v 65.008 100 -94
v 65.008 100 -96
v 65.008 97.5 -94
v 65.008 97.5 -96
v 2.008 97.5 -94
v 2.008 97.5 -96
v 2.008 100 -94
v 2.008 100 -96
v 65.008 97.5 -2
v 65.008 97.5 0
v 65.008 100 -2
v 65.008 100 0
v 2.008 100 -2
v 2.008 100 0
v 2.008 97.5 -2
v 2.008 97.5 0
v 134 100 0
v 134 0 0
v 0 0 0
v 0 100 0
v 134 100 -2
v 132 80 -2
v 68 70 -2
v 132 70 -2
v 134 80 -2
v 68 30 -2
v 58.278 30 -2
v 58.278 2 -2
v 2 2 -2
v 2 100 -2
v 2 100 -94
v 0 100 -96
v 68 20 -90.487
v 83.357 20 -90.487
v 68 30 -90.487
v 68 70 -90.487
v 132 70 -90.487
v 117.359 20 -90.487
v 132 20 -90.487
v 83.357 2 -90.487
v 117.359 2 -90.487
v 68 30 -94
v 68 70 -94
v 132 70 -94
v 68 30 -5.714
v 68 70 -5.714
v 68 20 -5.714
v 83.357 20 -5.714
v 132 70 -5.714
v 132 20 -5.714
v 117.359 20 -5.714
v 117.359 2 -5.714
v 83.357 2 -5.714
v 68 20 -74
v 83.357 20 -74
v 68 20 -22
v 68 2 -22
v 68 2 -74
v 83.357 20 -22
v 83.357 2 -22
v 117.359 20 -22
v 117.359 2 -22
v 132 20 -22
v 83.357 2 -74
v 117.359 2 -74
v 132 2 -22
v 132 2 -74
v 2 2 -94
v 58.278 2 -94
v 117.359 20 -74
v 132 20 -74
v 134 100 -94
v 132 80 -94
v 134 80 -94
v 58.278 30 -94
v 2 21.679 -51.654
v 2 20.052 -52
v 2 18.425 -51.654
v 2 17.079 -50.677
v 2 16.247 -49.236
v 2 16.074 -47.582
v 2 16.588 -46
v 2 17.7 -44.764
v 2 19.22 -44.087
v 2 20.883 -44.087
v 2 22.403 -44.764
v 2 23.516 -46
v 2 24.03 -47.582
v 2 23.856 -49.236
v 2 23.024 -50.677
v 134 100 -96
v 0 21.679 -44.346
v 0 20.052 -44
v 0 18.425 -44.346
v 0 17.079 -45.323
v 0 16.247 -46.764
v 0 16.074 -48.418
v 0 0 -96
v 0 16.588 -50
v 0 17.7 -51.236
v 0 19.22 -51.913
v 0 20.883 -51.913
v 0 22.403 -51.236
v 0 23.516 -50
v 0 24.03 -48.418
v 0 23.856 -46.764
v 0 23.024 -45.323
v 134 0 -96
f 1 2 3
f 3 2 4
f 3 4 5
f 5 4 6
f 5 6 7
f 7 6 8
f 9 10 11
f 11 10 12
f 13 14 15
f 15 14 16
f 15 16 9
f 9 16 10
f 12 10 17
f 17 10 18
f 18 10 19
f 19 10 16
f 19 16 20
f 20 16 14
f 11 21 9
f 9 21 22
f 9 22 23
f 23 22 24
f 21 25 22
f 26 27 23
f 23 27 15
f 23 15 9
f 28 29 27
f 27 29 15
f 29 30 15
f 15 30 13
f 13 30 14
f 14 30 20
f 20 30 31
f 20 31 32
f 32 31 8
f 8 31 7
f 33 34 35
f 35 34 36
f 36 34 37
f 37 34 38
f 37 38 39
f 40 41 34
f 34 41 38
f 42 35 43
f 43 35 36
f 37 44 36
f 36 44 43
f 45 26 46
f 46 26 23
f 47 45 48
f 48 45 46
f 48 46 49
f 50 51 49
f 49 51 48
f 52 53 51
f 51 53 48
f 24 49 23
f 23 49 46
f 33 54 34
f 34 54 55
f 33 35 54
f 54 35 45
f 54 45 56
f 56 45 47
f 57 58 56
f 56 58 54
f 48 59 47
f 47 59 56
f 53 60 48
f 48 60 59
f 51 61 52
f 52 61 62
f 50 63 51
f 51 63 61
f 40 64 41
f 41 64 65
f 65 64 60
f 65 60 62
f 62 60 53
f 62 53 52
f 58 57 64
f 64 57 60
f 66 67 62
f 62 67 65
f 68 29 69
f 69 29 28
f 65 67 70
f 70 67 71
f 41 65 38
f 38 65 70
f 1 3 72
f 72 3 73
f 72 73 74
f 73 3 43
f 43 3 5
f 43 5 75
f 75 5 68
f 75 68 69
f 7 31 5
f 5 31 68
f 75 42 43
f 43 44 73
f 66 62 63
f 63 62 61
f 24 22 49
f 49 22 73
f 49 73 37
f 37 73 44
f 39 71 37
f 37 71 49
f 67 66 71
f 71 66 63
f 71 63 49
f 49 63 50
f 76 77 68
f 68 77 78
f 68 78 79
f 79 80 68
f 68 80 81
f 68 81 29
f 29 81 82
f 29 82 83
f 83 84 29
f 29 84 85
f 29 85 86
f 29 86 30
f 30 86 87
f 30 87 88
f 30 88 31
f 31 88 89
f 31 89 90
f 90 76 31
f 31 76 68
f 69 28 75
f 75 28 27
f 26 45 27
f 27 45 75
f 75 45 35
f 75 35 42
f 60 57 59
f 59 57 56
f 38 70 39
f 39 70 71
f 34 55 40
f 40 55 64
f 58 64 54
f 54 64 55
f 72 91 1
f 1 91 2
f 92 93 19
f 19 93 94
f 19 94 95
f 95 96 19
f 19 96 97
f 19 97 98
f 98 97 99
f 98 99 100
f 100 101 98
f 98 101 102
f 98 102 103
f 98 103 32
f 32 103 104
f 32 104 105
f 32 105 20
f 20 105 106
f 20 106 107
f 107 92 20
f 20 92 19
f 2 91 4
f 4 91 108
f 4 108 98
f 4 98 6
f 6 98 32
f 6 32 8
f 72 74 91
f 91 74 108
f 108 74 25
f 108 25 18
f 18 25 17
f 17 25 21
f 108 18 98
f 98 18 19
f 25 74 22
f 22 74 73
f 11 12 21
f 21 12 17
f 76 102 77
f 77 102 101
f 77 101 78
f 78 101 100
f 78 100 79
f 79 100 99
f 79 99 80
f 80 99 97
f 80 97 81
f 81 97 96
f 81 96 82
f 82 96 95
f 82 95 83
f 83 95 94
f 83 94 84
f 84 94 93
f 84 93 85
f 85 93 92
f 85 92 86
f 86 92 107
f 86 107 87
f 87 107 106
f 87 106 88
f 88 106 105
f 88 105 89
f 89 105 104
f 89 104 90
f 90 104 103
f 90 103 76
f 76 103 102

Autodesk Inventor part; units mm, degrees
ref_plane "YZ Plane" through (0, 0, 0) normal (1, 0, 0) x (0, 1, 0)
ref_plane "XZ Plane" through (0, 0, 0) normal (0, 1, 0) x (-1, 0, 0)
ref_plane "XY Plane" through (0, 0, 0) normal (0, 0, 1) x (1, 0, 0)
sketch "Sketch1" plane through (0, 0, 0) normal (0, 1, 0) x (-1, 0, 0)
  line L0 (0, 0) -> (-134, 0)
  line L1 (-134, 0) -> (-134, -96)
  line L2 (-134, -96) -> (0, -96)
  line L3 (0, -96) -> (0, 0)
  line L4 (0, 0) -> (-2, 0)
  line L5 (-2, 0) -> (-2, -2)
  line L6 (-2, -2) -> (0, -2)
  line L7 (0, -2) -> (0, 0)
  line L8 (-134, -96) -> (-132, -96)
  line L9 (-132, -96) -> (-132, -94)
  line L10 (-132, -94) -> (-134, -94)
  line L11 (-134, -94) -> (-134, -96)
  line L12 (-2, -2) -> (-132, -2)
  line L13 (-132, -2) -> (-132, -94)
  line L14 (-132, -94) -> (-2, -94)
  line L15 (-2, -94) -> (-2, -2)
  line L16 (-132, -94) -> (-68, -94)
  line L17 (-68, -94) -> (-68, -74)
  line L18 (-68, -74) -> (-132, -74)
  line L19 (-132, -74) -> (-132, -94)
  line L20 (-132, -2) -> (-68, -2)
  line L21 (-68, -2) -> (-68, -22)
  line L22 (-68, -22) -> (-132, -22)
  line L23 (-132, -22) -> (-132, -2)
  line L24 (-132, -74) -> (-71.6783, -74)
  line L25 (-71.6783, -22) -> (-132, -22)
  line L26 (-71.6783, -74) -> (-71.6783, -22)
  line L27 (-71.6783, -88.5049) -> (-132, -88.5049)
  line L28 (-132, -88.5049) -> (-132, -7.5049)
  line L29 (-132, -7.5049) -> (-71.6783, -7.5049)
  line L30 (-71.6783, -7.5049) -> (-71.6783, -88.5049)
  line L31 (-68, -94) -> (-58.2781, -94)
  line L32 (-58.2781, -94) -> (-58.2781, -2)
  line L33 (-58.2781, -2) -> (-68, -2)
  line L34 (-68, -2) -> (-68, -94)
  line L35 (-2, -94) -> (-58.2781, -94)
  line L36 (-58.2781, -94) -> (-58.2781, -2)
  line L37 (-58.2781, -2) -> (-2, -2)
  line L38 (-2, -2) -> (-2, -94)
  line L39 (-68, -74) -> (-83.3567, -74)
  line L40 (-83.3567, -74) -> (-83.3567, -94)
  line L41 (-83.3567, -94) -> (-68, -94)
  line L42 (-68, -94) -> (-68, -74)
  line L43 (-132, -74) -> (-117.3588, -74)
  line L44 (-117.3588, -74) -> (-117.3588, -94)
  line L45 (-117.3588, -94) -> (-132, -94)
  line L46 (-132, -94) -> (-132, -74)
  line L47 (-68, -22) -> (-83.3567, -22)
  line L48 (-83.3567, -22) -> (-83.3567, -2)
  line L49 (-83.3567, -2) -> (-68, -2)
  line L50 (-68, -2) -> (-68, -22)
  line L51 (-117.3588, -22) -> (-132, -22)
  line L52 (-132, -22) -> (-132, -2)
  line L53 (-132, -2) -> (-117.3588, -2)
  line L54 (-117.3588, -2) -> (-117.3588, -22)
  line L55 (-68, -5.7143) -> (-132, -5.7143)
  line L56 (-132, -5.7143) -> (-132, -2)
  line L57 (-132, -2) -> (-68, -2)
  line L58 (-68, -2) -> (-68, -5.7143)
  line L59 (-68, -94) -> (-132, -94)
  line L60 (-132, -94) -> (-132, -90.4872)
  line L61 (-132, -90.4872) -> (-68, -90.4872)
  line L62 (-68, -90.4872) -> (-68, -94)
  line L63 (-132, -92.2436) -> (-29, -92.2436)
  line L64 (-29, -92.2436) -> (-29, -2.2436)
  line L65 (-29, -2.2436) -> (-132, -2.2436)
  line L66 (-132, -2.2436) -> (-132, -92.2436)
  point P0 (-83.3567, -2)
  point P1 (-83.3567, -7.5049)
  point P2 (-117.3588, -7.5049)
  point P3 (-132, -7.5049)
  point P4 (-132, -88.5049)
  point P5 (-117.3588, -88.5049)
  point P6 (-83.3567, -88.5049)
  dimension "d0" = 134
  dimension "d1" = 96
  dimension "d2" = 2
  dimension "d3" = 2
  dimension "d4" = 2
  dimension "d5" = 2
  dimension "d6" = 64
  dimension "d7" = 64
  dimension "d9" = 20
  dimension "d10" = 20
  dimension "d11" = 81
  dimension "d22" = 5.5049
  dimension "d23" = 90
  dimension "d24" = 103
extrude "Extrusion1" add sketch "Sketch1" along normal blind 100 contours L3 L6 L5 L0 | L5 L12 L13 L10 L1 L0 | L3 L2 L9 L14 L15 L6 | L10 L9 L2 L1
extrude "Extrusion2" add sketch "Sketch1" along normal blind 20 contours L13 L63 L44 L14 | L21 L65 L48 L12 | L13 L61 L44 L63 | L21 L55 L48 L65 | L14 L40 L63 L17 | L13 L27 L44 L61 | L54 L65 L13 L12 | L21 L22 L30 L29 L48 L55 | L63 L40 L61 L17 | L13 L18 L44 L27 | L54 L55 L13 L65 | L61 L40 L27 L30 L18 L17 | L54 L29 L13 L55 | L29 L30 L22 L48 | L13 L29 L54 L22 | L40 L18 L30 L27
extrude "Extrusion3" add sketch "Sketch1" along normal blind 30 contours L32 L65 L21 L12 | L32 L63 L17 L34 L21 L65 | L14 L17 L63 L32
extrude "Extrusion4" add sketch "Sketch1" along normal blind 2 contours L15 L14 L32 L63 L64 L65 L12 | L65 L64 L63 L32 | L44 L63 L40 L14 | L48 L65 L54 L12 | L44 L61 L40 L63 | L48 L55 L54 L65 | L13 L18 L44 L27 | L44 L27 L40 L61 | L48 L29 L54 L55 | L34 L18 L26 L22 | L13 L22 L26 L18 | L44 L18 L40 L27 | L48 L22 L54 L29 | L29 L30 L22 L48 | L13 L29 L54 L22 | L40 L18 L30 L27
sketch "Sketch2" plane through (0, 0, 0) normal (0, 0, 1) x (1, 0, 0)
  line L0 (132, 20) -> (132, 100) projected
  line L1 (132, 70) -> (60, 70)
  line L2 (83.3567, 20) -> (68, 20) projected
  line L3 (60, 70) -> (132, 70)
  line L4 (132, 70) -> (132, 65.2658)
  line L5 (132, 65.2658) -> (60, 65.2658)
  line L6 (60, 65.2658) -> (60, 70)
  point P0 (0, 0)
  dimension "d20" = 50
  dimension "d21" = 72
extrude "Extrusion5" add sketch "Sketch1" along normal blind 70 contours L13 L63 L44 L14 | L21 L65 L48 L12 | L13 L61 L44 L63 | L44 L63 L40 L14 | L48 L65 L54 L12 | L21 L55 L48 L65 | L14 L40 L63 L17 | L44 L61 L40 L63 | L54 L65 L13 L12 | L48 L55 L54 L65 | L63 L40 L61 L17 | L54 L55 L13 L65
sketch "Sketch3" plane through (0, 100, 0) normal (0, 1, 0) x (1, 0, 0)
  line L0 (0, 0) -> (134, 0) projected
  line L1 (2.0076, 96.0653) -> (65.0076, 96.0653)
  line L2 (65.0076, 96.0653) -> (65.0076, 0)
  line L3 (65.0076, 0) -> (2.0076, 0)
  line L4 (2.0076, 0) -> (2.0076, 96.0653)
  dimension "d27" = 63
extrude "Extrusion6" cut sketch "Sketch3" against normal blind 2.5
sketch "Sketch4" plane through (0, 0, -96) normal (-1, 0, 0) x (0, 0, 1)
  line L0 (2, 2) -> (2, 100) projected
  line L1 (94, 2) -> (2, 2) projected
  line L2 (2, 2) -> (94, 2)
  circle A0 centre (48, 20.0516) radius 4
  point P0 (96, 0)
  dimension "d30" = 8
sketch "Sketch5" plane through (0, 100, 0) normal (0, 1, 0) x (1, 0, 0)
  line L0 (134, 0) -> (134, 96) projected
  line L1 (132, 94) -> (134, 94)
  line L2 (134, 94) -> (134, 2)
  line L3 (134, 2) -> (132, 2)
  line L4 (132, 2) -> (132, 94)
  point P0 (0, 0)
  dimension "d31" = 92
extrude "Extrusion7" cut sketch "Sketch5" against normal blind 20
extrude "Extrusion8" cut sketch "Sketch4" against normal blind 20
properties part number "FINALE"
